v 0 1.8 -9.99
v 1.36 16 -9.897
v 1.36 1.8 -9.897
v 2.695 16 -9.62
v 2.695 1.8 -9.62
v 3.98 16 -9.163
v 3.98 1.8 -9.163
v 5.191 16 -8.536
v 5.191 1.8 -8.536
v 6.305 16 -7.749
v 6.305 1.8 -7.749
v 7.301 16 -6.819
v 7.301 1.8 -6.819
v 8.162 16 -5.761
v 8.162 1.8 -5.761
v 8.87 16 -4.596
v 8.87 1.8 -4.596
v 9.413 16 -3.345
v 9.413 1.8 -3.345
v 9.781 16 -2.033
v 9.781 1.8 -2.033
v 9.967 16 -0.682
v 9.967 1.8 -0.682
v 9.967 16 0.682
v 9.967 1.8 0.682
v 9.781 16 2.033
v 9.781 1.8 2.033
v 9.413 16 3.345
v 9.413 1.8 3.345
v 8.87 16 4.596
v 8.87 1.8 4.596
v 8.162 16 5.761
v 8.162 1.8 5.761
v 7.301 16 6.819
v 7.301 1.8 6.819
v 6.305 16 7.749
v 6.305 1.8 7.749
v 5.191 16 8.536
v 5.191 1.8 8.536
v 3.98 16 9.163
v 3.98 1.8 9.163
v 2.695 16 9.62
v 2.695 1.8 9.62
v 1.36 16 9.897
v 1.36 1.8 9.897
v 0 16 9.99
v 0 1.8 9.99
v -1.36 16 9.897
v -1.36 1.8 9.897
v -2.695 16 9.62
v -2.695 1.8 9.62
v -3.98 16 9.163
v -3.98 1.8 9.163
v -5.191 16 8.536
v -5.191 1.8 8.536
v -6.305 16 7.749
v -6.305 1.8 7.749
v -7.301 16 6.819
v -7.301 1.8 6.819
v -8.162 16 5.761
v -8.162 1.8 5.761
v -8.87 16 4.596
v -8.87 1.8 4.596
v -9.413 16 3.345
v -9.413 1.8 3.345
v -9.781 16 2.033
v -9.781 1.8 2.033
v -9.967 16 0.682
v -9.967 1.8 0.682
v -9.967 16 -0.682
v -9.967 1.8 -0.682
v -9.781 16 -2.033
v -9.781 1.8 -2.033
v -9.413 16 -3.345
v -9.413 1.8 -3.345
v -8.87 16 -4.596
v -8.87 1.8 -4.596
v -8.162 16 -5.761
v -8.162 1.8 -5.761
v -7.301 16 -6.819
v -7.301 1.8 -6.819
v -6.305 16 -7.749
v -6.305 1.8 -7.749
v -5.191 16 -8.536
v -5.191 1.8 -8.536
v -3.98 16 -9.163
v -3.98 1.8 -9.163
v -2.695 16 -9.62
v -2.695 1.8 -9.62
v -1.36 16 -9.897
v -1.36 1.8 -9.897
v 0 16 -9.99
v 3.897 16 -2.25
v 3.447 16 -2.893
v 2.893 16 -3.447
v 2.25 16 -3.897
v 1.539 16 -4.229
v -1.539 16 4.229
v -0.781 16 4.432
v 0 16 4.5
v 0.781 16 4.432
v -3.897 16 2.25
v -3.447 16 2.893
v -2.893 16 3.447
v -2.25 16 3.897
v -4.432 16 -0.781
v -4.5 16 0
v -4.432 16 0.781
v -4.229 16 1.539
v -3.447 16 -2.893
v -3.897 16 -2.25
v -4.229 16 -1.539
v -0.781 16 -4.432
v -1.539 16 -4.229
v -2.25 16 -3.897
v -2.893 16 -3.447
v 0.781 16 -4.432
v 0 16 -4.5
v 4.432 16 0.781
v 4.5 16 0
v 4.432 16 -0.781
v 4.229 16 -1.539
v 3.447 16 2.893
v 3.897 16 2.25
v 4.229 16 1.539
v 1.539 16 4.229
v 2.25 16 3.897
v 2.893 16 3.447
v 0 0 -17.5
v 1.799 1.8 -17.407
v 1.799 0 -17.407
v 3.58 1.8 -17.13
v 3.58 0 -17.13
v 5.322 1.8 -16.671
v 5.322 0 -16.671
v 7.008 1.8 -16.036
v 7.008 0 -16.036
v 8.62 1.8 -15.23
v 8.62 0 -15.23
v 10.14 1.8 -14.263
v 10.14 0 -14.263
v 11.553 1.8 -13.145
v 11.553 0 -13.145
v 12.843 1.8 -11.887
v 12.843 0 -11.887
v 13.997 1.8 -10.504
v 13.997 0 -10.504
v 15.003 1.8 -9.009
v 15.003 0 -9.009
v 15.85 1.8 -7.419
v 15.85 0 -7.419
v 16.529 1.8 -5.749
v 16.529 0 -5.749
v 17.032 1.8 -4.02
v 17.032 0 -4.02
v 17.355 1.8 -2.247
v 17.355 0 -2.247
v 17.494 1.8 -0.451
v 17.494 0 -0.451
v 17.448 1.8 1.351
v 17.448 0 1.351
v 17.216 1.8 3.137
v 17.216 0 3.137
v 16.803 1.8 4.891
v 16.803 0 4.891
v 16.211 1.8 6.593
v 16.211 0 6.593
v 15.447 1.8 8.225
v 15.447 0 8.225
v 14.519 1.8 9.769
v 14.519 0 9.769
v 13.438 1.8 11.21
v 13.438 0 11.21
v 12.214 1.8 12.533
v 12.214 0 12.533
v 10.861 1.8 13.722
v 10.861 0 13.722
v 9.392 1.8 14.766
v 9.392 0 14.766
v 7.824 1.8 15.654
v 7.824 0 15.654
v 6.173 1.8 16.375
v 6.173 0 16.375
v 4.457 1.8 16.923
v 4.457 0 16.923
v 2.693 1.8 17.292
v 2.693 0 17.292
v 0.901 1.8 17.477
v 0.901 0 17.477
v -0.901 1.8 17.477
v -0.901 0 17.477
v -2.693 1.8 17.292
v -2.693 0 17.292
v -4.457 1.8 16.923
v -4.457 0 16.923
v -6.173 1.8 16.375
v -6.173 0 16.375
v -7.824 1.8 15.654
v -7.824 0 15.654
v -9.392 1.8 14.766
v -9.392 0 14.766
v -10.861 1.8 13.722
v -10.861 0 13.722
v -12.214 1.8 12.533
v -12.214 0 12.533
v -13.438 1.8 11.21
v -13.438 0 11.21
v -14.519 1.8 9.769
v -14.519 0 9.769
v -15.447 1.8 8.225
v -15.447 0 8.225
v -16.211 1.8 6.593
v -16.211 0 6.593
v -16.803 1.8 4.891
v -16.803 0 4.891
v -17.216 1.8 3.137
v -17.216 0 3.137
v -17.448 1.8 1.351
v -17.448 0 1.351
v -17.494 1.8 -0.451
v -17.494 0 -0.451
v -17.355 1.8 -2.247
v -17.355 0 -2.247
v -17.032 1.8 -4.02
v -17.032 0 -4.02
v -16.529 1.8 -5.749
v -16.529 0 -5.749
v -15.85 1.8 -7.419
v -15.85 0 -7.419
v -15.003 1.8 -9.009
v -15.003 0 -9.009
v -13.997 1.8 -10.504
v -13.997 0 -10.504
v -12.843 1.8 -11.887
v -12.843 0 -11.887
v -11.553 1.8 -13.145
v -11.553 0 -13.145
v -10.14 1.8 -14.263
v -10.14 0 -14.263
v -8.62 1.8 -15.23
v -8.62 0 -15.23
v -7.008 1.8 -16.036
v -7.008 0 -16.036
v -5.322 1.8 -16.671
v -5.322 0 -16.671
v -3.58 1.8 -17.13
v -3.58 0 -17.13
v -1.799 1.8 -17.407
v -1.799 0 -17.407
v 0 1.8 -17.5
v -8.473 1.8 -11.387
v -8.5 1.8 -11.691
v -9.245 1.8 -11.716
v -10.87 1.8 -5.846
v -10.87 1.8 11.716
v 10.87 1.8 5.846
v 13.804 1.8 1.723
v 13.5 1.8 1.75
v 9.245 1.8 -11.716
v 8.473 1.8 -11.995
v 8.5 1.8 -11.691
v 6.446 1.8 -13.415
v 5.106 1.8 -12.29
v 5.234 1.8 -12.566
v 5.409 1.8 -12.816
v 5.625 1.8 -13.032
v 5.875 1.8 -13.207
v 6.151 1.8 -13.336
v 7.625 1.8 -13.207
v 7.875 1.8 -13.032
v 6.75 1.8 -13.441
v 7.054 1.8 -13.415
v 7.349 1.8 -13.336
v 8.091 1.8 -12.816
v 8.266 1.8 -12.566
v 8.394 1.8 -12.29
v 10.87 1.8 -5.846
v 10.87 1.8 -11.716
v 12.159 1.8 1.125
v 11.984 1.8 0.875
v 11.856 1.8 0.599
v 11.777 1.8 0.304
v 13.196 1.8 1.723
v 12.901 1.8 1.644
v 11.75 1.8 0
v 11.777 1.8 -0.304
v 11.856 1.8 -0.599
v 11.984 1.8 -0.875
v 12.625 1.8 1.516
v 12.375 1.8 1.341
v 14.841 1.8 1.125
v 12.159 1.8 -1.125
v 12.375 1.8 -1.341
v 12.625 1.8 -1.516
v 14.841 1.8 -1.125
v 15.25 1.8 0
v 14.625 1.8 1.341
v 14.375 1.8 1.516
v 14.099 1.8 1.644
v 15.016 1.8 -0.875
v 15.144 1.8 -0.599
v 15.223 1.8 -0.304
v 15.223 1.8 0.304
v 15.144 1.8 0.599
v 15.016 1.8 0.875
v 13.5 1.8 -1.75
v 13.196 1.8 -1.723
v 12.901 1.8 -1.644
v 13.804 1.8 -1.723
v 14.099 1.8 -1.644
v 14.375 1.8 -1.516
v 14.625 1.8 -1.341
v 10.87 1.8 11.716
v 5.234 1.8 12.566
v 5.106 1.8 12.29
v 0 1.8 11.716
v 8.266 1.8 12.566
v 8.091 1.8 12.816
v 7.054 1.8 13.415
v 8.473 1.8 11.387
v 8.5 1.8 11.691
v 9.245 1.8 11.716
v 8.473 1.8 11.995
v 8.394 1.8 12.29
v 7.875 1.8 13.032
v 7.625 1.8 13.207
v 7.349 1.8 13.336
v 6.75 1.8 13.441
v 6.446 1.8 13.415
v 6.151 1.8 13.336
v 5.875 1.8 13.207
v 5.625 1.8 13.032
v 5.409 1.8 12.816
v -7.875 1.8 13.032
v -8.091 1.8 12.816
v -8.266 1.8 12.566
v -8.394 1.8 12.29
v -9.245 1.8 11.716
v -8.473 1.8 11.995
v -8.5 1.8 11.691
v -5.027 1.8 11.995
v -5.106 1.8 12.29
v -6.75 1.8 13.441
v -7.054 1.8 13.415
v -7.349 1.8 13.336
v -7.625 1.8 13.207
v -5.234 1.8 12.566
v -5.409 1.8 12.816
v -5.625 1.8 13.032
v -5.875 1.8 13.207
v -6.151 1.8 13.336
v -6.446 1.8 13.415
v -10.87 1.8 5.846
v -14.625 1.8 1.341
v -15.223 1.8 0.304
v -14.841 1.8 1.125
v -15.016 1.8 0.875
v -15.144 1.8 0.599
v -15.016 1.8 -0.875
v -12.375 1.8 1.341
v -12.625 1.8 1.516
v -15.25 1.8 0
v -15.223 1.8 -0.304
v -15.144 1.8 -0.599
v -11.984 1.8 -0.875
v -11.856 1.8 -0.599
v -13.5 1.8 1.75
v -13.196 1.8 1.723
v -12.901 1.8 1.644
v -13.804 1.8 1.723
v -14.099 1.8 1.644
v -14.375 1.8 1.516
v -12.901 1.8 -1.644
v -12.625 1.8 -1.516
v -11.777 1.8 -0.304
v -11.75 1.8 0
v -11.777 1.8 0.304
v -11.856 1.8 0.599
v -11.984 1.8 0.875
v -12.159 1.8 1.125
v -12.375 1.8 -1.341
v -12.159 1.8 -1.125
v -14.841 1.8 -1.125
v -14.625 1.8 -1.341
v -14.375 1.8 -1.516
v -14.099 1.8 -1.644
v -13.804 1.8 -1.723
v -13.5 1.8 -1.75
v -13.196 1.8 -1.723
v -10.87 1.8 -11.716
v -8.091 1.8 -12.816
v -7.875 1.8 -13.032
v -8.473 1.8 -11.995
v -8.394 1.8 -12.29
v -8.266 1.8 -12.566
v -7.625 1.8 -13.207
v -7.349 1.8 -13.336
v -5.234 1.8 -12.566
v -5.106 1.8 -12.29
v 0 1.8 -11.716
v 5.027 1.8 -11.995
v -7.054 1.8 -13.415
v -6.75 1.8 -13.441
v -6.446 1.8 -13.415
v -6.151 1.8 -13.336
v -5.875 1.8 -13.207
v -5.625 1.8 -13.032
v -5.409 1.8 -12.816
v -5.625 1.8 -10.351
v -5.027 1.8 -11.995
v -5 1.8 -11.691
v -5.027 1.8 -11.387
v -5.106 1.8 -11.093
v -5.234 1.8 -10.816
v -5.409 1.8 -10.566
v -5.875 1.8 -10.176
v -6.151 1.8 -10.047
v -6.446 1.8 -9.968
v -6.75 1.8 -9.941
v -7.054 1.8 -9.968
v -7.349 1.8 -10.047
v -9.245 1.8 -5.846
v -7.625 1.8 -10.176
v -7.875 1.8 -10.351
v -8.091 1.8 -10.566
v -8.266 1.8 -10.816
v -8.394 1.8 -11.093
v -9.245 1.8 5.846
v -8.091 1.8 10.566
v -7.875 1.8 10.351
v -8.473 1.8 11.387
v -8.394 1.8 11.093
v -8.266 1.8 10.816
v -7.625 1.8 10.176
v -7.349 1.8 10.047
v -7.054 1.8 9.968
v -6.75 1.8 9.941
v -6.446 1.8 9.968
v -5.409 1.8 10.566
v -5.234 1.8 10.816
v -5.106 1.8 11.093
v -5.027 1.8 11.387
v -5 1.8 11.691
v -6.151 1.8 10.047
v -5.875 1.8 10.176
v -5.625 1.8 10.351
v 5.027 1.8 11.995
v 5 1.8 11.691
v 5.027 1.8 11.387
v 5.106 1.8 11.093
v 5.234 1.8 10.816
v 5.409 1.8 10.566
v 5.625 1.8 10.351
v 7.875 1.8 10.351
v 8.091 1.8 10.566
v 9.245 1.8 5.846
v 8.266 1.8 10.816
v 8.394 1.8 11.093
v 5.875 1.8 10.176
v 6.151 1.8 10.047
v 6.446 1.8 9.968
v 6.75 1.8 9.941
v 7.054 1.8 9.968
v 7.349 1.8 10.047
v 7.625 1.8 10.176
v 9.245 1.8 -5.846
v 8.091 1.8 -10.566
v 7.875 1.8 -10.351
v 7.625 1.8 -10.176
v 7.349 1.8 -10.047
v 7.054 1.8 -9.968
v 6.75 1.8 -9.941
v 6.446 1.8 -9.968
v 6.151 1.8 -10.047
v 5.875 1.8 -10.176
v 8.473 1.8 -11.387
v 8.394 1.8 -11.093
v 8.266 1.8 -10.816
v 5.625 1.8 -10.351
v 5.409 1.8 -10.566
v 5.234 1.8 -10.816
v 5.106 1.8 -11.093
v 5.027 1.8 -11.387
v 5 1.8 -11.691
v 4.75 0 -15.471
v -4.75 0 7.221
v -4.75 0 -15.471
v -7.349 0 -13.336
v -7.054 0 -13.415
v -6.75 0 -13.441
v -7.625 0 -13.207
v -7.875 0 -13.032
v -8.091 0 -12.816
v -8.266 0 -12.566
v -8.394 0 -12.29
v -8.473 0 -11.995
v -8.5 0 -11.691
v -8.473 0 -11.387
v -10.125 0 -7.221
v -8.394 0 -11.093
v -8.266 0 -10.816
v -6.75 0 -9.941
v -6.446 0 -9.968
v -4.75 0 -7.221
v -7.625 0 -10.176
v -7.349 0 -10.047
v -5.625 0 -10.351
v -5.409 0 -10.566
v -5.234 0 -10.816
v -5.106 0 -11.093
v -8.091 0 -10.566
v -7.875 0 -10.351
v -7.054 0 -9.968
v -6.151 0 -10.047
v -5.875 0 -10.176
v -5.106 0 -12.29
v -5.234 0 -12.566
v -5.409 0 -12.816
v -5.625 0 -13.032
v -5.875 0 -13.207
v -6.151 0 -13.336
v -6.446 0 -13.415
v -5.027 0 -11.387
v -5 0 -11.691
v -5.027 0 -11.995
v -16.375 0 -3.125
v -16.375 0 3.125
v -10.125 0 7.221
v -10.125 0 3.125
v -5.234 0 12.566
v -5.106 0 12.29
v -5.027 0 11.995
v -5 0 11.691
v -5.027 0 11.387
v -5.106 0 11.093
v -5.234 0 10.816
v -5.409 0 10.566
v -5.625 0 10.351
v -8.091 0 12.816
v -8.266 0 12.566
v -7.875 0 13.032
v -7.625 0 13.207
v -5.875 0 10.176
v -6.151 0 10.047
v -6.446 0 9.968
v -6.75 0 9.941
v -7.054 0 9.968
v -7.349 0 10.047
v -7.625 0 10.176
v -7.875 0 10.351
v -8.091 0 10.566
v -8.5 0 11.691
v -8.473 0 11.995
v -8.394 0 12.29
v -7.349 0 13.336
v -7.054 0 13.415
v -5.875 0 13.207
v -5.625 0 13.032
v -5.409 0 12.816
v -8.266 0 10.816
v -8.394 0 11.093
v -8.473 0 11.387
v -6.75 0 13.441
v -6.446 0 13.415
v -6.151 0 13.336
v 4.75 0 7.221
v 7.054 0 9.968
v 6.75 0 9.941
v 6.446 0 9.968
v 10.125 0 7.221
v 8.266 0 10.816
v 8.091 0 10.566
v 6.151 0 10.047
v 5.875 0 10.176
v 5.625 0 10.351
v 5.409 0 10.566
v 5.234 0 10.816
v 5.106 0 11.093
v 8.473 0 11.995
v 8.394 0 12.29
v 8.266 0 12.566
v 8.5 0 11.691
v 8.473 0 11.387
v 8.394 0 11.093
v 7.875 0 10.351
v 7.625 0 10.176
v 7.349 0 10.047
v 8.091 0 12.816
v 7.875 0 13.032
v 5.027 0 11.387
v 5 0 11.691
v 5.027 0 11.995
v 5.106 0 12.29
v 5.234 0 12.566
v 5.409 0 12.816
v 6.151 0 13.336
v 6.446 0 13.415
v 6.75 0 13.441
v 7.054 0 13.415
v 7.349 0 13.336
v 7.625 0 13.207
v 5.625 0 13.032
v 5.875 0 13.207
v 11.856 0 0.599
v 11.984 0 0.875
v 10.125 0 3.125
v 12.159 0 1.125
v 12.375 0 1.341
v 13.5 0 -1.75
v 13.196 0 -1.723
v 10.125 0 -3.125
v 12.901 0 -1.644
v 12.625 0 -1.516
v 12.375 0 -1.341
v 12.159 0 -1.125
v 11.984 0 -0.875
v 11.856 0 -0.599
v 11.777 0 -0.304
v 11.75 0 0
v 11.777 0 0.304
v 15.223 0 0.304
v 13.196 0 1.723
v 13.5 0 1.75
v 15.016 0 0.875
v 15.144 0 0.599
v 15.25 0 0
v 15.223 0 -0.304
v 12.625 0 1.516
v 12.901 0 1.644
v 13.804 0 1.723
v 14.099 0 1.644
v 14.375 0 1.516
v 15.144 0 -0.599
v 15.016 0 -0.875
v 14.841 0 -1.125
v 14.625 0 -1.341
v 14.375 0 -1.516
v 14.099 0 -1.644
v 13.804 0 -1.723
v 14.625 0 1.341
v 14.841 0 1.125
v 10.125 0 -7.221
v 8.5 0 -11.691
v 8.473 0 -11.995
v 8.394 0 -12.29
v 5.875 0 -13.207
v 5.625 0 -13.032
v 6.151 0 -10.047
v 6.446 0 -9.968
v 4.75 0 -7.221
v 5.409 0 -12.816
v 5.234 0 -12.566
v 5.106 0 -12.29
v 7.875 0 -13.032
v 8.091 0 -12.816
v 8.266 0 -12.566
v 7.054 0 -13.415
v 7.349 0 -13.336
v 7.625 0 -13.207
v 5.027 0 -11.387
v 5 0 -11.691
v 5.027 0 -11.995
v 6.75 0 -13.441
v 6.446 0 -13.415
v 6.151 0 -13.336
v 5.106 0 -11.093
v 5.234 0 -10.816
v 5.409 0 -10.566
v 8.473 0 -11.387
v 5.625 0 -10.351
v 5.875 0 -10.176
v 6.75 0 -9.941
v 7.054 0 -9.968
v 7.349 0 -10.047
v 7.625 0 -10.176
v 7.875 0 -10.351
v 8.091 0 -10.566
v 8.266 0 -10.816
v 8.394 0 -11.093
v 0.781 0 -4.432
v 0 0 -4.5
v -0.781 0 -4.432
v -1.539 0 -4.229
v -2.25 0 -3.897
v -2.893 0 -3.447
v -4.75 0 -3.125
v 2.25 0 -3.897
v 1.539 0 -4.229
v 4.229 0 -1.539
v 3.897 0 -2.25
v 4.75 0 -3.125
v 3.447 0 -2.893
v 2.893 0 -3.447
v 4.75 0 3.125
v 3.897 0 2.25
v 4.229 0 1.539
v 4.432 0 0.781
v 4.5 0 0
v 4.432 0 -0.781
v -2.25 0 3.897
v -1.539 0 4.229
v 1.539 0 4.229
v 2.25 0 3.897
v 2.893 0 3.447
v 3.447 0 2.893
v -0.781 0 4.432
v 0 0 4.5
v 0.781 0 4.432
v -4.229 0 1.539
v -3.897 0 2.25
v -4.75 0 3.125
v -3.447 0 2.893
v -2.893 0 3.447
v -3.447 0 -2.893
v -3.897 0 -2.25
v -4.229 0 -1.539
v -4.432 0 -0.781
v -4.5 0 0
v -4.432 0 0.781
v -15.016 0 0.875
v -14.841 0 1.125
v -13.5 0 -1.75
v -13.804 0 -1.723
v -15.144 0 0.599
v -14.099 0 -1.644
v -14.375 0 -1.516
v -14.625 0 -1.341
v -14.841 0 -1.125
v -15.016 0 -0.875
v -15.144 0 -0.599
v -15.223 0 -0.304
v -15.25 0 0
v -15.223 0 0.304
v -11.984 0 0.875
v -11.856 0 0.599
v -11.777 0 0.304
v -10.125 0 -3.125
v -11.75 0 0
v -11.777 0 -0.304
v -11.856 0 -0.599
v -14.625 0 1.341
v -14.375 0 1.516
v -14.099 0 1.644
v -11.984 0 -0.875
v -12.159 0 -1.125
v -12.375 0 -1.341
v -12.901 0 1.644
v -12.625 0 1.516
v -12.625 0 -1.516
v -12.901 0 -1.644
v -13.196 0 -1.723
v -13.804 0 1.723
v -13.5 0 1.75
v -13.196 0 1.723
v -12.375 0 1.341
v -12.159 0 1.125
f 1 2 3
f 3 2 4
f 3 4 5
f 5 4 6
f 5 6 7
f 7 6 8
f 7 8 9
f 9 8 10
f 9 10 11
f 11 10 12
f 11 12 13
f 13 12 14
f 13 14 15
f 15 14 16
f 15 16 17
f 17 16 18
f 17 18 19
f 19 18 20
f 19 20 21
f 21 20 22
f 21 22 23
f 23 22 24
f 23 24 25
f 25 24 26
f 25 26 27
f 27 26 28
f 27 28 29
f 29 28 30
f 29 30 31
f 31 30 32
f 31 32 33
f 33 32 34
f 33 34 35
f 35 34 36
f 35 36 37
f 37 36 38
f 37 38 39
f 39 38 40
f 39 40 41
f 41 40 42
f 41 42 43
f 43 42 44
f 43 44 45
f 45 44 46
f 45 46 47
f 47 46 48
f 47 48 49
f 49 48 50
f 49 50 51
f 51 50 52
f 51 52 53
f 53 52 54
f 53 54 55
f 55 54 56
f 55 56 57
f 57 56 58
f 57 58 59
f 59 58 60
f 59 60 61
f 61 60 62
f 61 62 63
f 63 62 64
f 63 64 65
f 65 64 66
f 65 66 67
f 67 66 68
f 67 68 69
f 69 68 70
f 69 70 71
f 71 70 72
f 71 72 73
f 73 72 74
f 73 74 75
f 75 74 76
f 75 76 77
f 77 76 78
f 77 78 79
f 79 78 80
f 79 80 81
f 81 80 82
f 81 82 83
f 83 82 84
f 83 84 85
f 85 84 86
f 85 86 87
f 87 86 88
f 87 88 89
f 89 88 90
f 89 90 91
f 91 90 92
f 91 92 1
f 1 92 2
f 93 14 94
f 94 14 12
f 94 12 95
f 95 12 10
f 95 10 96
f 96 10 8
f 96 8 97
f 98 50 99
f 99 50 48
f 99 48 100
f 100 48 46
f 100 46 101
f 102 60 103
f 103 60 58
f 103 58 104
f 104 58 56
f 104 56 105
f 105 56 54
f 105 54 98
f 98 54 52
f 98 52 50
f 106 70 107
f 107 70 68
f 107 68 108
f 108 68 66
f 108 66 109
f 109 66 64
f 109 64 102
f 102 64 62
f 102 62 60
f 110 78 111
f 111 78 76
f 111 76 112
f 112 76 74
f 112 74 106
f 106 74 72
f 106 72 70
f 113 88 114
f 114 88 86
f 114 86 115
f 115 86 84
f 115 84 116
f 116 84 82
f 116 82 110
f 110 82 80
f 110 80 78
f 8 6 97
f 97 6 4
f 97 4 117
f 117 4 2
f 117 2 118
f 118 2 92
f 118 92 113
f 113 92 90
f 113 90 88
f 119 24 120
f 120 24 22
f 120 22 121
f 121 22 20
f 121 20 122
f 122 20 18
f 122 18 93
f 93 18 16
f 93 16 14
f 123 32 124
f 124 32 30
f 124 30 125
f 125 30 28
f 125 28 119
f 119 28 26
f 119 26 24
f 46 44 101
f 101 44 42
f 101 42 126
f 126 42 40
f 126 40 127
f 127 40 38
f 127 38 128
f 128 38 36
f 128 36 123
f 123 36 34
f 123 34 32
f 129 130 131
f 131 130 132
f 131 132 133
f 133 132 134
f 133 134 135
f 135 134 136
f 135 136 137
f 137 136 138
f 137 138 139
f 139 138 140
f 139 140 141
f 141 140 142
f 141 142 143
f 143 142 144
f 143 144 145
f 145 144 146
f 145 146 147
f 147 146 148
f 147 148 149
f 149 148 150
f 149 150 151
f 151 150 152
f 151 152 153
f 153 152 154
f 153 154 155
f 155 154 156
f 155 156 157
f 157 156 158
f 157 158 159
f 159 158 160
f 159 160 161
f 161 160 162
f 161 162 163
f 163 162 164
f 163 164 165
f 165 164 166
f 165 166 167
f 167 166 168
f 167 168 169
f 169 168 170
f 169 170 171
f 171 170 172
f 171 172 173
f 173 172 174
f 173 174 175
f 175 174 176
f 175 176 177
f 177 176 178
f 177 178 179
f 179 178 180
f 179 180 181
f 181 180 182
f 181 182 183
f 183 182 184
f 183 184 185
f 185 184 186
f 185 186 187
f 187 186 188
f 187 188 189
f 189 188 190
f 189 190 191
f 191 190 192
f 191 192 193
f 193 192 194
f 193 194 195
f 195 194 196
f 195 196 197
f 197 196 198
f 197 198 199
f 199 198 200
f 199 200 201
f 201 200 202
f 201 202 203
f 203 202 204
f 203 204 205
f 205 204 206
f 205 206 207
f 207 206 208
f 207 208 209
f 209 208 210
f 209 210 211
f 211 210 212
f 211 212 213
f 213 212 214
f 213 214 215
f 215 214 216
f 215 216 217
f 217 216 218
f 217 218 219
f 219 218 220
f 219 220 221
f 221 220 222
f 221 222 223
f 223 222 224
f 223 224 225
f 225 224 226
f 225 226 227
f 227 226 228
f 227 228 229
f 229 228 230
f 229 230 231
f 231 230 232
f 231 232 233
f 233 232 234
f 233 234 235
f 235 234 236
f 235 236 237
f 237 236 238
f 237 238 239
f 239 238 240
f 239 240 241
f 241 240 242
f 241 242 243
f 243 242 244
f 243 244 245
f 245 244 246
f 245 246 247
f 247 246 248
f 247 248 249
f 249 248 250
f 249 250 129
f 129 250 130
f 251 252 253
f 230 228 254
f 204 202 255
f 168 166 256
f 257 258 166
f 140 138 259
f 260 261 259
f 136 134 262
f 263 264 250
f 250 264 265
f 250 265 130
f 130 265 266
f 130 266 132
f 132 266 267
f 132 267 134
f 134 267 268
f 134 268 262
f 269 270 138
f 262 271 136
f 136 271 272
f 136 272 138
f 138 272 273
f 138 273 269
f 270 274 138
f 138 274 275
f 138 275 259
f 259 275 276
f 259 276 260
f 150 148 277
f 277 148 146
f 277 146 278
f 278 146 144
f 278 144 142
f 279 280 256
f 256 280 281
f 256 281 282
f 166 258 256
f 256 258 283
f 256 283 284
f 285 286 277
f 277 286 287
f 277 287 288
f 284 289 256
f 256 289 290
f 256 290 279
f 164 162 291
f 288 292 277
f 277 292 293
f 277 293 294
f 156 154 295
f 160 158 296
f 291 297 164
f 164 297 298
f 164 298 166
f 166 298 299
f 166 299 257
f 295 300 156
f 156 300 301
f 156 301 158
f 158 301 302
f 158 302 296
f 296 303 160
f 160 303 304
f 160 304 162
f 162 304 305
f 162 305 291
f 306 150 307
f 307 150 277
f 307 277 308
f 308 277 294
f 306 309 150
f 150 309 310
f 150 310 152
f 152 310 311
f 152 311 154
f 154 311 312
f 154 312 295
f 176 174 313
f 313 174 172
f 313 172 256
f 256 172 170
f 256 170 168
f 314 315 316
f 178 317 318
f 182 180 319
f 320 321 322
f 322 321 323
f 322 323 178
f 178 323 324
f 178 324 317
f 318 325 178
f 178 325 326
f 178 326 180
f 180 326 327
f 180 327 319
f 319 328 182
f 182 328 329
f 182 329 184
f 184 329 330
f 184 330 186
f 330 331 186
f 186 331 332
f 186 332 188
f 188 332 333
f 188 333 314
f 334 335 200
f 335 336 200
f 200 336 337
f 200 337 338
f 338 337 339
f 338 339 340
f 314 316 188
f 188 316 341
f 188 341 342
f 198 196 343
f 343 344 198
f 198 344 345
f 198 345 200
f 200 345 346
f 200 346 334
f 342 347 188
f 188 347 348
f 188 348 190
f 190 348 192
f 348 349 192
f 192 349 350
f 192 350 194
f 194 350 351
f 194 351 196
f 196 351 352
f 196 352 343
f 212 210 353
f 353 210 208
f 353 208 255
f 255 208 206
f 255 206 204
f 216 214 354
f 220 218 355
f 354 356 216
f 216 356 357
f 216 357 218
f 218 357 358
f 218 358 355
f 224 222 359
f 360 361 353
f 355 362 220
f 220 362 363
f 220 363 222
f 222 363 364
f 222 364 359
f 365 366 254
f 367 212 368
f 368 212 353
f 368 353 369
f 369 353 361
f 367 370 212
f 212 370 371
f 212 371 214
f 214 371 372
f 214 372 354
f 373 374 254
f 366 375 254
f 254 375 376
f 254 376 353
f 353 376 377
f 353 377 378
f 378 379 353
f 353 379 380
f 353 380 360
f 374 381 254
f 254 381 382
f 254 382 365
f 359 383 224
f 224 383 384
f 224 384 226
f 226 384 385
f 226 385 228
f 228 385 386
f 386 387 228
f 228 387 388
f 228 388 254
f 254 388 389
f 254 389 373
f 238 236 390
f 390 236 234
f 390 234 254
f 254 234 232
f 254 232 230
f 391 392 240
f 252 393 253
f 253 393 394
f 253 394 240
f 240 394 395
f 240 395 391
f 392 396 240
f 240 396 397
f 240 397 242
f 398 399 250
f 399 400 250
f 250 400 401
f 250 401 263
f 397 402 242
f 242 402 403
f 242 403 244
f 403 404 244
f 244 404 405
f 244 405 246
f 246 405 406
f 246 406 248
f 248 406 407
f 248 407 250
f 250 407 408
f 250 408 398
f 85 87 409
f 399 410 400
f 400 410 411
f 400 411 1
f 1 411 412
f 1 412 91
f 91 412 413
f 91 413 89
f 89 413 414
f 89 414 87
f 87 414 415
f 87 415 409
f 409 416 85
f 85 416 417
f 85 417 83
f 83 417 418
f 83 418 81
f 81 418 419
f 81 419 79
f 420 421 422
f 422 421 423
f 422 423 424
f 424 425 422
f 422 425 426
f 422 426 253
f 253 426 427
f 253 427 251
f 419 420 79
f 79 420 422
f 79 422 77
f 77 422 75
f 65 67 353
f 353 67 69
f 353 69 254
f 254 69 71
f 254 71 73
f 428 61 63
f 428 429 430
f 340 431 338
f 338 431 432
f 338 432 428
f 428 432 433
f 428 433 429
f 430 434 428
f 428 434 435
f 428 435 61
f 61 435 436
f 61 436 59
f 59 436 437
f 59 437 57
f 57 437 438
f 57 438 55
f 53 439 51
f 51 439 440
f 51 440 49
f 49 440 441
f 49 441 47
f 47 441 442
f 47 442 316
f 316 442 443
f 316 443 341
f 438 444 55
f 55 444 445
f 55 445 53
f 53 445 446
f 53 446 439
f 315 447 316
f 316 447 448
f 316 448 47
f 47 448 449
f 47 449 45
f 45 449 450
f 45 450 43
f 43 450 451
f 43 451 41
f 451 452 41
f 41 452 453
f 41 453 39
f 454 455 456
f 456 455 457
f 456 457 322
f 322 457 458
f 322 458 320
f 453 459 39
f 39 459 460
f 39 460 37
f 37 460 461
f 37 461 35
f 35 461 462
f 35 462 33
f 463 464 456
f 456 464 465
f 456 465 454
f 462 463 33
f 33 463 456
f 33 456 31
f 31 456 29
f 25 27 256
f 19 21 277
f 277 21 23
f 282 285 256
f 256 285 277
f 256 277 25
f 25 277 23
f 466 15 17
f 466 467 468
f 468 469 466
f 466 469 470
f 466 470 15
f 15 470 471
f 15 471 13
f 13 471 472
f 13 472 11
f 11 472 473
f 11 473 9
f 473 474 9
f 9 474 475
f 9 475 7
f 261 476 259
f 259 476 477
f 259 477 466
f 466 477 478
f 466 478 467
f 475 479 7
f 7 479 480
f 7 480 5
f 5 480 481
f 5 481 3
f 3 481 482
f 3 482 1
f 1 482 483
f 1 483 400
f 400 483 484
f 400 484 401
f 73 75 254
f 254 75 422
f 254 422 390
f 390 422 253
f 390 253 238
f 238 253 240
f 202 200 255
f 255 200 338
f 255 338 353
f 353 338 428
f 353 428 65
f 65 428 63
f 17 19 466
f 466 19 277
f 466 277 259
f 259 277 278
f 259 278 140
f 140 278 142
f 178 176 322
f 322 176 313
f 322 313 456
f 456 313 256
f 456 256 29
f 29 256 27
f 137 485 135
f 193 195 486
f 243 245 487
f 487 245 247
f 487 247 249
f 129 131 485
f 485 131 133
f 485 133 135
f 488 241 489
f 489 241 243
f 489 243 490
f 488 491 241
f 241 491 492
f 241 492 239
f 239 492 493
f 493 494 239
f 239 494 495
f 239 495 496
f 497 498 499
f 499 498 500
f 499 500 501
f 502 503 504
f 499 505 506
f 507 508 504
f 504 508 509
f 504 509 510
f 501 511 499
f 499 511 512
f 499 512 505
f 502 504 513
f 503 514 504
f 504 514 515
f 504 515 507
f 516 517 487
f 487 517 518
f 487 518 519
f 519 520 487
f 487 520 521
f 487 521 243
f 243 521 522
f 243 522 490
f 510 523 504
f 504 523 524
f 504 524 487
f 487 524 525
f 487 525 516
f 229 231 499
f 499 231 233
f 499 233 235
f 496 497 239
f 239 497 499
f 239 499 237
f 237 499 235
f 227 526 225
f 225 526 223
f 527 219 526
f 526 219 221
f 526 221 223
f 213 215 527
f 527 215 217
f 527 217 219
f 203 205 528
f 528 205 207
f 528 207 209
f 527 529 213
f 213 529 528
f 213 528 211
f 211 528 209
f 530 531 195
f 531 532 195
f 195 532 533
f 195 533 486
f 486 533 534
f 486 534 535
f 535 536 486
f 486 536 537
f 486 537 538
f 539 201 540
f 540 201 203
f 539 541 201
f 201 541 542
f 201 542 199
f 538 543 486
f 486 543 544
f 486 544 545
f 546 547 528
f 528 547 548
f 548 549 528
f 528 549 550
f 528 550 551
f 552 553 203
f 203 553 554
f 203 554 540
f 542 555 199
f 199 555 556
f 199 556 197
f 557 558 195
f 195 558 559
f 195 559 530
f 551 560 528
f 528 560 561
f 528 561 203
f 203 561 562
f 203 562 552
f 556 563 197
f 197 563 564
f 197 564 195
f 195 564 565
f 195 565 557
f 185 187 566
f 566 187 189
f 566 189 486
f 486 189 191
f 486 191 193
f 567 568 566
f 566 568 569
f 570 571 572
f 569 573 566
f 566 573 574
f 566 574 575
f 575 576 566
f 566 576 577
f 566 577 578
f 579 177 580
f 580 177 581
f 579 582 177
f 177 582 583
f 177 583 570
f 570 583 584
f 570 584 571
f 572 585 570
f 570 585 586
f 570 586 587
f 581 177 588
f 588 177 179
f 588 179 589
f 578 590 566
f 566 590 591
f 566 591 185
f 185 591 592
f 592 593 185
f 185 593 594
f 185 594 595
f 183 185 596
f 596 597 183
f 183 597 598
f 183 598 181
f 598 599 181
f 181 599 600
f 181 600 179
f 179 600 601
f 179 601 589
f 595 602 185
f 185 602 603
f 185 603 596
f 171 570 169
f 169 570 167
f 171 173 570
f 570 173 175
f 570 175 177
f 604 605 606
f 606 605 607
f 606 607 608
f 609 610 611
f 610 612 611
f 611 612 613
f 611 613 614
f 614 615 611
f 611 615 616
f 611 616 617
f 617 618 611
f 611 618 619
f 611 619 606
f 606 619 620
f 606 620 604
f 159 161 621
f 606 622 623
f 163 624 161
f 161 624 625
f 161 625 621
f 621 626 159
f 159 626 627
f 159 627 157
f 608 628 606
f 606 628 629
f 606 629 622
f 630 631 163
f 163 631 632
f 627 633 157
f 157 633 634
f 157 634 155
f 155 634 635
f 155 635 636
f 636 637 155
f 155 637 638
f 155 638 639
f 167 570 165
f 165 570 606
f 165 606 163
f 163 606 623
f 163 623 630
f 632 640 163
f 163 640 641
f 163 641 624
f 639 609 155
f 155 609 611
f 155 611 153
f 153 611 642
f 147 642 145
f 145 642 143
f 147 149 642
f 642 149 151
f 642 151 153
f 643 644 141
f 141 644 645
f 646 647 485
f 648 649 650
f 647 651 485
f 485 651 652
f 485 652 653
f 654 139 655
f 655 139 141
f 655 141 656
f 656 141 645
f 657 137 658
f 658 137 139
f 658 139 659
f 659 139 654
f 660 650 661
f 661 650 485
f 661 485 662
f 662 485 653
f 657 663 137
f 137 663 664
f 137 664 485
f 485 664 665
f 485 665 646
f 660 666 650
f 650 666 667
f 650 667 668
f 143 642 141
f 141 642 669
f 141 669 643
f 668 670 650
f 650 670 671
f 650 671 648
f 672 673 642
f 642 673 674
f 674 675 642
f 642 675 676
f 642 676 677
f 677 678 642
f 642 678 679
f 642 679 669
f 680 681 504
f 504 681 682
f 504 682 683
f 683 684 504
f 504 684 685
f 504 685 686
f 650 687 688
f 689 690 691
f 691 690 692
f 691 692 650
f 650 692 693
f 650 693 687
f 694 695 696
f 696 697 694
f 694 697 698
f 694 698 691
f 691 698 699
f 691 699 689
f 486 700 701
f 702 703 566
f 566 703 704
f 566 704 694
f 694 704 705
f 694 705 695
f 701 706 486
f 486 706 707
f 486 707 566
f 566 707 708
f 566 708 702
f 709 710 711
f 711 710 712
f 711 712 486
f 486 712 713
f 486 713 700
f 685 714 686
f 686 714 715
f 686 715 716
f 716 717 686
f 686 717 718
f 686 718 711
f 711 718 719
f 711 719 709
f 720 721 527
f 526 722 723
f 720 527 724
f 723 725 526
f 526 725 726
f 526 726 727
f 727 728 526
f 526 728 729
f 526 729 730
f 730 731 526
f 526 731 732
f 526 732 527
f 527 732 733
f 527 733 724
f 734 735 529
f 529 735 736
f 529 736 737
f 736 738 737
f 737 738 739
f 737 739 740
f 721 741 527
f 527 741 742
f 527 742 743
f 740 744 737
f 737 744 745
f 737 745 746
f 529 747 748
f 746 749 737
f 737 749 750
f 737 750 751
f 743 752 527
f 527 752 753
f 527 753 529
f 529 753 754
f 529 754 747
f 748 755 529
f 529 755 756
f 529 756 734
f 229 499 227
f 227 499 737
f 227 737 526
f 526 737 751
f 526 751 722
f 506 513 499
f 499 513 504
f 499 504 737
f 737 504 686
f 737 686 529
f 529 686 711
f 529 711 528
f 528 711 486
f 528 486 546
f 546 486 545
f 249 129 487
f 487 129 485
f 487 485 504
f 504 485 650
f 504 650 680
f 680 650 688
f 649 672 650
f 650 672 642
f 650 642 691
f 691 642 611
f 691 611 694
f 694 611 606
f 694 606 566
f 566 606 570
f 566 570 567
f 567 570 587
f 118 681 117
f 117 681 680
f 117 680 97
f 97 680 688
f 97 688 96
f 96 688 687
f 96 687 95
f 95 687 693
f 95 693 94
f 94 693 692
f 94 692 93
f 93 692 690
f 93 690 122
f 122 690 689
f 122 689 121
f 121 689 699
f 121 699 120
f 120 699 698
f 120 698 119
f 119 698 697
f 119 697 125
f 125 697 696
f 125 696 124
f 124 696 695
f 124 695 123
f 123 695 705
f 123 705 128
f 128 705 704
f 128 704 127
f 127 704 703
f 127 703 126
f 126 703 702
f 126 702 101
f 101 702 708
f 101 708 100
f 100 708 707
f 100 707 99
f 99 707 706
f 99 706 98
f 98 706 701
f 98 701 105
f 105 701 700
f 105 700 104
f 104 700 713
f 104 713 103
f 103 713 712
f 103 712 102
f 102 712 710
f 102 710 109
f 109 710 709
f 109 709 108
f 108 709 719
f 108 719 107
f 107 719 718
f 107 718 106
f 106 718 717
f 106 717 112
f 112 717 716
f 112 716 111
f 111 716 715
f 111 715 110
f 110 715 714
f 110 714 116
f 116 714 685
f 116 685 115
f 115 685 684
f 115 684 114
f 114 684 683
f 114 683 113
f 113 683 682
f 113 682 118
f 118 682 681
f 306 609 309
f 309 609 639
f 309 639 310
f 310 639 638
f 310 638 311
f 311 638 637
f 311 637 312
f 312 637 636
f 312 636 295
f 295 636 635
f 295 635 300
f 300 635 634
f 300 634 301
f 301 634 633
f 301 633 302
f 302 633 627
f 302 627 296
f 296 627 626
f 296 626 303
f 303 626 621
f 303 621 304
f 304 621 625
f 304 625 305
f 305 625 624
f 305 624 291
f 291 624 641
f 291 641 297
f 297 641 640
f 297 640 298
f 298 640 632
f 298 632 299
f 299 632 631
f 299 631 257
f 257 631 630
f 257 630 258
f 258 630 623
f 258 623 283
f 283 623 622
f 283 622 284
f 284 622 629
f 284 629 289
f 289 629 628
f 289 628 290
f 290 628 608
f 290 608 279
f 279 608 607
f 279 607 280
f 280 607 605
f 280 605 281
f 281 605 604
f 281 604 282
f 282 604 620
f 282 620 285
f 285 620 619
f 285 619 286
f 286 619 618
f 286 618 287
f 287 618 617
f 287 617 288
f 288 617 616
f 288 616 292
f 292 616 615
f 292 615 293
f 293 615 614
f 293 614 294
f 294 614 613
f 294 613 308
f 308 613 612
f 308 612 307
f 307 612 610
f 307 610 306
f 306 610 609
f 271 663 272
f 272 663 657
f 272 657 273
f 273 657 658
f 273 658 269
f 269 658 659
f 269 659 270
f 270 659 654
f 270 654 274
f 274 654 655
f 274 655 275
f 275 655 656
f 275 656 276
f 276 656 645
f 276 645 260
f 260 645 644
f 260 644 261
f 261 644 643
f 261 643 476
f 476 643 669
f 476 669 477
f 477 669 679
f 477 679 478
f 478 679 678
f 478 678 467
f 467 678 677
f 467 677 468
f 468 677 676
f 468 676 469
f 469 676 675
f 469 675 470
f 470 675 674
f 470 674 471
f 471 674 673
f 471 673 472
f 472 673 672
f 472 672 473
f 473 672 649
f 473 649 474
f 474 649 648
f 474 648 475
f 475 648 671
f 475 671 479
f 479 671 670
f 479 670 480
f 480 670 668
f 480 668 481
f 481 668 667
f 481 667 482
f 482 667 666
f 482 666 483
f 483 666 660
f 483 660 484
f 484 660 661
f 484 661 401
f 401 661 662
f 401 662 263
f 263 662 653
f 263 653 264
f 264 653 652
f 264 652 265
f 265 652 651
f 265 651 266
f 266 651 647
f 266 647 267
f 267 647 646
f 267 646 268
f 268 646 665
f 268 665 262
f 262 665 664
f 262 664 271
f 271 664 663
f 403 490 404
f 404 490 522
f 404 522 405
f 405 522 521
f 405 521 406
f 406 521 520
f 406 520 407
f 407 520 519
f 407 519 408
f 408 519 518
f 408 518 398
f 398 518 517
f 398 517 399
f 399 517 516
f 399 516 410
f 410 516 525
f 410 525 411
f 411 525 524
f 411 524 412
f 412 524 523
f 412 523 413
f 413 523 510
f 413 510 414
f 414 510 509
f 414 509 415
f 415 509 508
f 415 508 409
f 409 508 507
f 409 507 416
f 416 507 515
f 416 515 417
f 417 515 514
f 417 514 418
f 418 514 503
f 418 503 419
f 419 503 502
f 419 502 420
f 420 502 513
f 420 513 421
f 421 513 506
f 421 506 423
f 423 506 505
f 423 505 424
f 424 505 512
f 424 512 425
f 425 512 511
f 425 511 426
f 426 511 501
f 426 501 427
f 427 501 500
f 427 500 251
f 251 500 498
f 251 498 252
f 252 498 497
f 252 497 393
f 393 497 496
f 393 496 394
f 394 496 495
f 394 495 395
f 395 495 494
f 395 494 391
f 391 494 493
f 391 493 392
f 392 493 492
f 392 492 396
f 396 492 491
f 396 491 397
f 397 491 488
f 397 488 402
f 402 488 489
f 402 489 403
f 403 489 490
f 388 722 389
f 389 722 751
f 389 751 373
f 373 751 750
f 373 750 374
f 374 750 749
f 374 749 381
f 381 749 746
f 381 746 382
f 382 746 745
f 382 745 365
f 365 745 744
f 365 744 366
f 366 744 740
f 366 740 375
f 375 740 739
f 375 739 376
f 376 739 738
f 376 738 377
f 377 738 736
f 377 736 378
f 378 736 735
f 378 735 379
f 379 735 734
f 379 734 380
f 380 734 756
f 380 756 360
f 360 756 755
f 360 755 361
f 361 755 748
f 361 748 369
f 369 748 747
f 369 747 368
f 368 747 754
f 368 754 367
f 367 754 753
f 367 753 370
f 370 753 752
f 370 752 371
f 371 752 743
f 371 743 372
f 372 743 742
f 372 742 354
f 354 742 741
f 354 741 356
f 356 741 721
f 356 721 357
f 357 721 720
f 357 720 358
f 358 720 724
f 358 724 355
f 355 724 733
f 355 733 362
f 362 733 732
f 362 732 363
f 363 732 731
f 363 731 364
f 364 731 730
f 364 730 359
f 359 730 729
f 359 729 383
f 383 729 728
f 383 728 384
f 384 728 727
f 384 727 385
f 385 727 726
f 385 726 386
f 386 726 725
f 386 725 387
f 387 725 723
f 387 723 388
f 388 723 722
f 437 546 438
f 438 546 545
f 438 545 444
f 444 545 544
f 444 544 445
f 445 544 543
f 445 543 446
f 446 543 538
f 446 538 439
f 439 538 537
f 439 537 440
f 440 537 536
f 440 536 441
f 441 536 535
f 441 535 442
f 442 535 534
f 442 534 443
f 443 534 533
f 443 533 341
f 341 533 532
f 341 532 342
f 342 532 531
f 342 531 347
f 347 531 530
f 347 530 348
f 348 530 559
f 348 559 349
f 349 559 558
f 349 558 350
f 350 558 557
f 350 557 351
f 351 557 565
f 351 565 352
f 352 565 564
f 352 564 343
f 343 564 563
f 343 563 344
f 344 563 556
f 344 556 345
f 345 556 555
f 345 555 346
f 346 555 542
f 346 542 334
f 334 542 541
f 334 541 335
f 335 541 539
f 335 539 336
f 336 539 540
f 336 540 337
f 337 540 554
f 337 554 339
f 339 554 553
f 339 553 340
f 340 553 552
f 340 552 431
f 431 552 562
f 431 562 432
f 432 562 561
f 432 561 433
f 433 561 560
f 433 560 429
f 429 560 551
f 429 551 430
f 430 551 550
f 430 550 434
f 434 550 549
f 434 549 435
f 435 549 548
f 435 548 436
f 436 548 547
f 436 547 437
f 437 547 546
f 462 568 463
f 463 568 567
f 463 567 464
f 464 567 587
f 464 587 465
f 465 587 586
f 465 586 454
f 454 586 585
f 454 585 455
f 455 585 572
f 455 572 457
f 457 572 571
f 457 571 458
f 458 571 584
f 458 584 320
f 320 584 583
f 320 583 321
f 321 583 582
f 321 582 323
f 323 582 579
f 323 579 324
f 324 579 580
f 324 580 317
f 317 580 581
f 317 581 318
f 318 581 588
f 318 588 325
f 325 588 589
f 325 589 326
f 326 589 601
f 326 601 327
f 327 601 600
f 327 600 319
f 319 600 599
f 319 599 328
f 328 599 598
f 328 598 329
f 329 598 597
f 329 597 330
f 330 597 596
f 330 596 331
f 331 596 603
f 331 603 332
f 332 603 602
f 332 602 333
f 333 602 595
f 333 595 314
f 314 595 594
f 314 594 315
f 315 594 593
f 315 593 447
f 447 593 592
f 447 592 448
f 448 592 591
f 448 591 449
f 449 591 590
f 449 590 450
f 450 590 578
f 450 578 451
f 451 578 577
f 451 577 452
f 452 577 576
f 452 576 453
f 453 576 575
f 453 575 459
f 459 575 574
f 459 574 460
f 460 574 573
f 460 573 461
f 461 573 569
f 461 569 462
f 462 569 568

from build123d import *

# Parameters (mm, degrees)
SKETCH1_R           = 9.99
BOSS_EXTRUDE1_DEPTH = 16
SKETCH3_R           = 17.5
BOSS_EXTRUDE2_DEPTH = 1.8
SKETCH4_R           = 4.5
CUT_EXTRUDE1_DEPTH  = 16
SKETCH6_R           = 1.75
CUT_EXTRUDE2_DEPTH  = 1.8
CIRPATTERN1_COUNT   = 6


with BuildPart() as part:
    # Sketch1 → Boss-Extrude1 (new body)
    with BuildSketch(Plane(origin=(0, 0, 0), x_dir=(1, 0, 0), z_dir=(0, 1, 0))):
        with Locations(Location((0, 0, 0), (0, 0, 270))):
            Circle(SKETCH1_R)
    extrude(amount=BOSS_EXTRUDE1_DEPTH)

    # Sketch3 → Boss-Extrude2 (add)
    with BuildSketch(Plane.XZ):
        with Locations(Location((0, 0, 0), (0, 0, 270))):
            Circle(SKETCH3_R)
    extrude(amount=-BOSS_EXTRUDE2_DEPTH)

    # Sketch4 → Cut-Extrude1 (cut)
    with BuildSketch(Plane.XZ):
        with Locations(Location((0, 0, 0), (0, 0, 270))):
            Circle(SKETCH4_R)
    extrude(amount=-CUT_EXTRUDE1_DEPTH, mode=Mode.SUBTRACT)

    # Sketch6 → Cut-Extrude2 (cut)
    with BuildSketch(Plane.XZ):
        with Locations(Location((13.5, 0, 0), (0, 0, 270))):
            Circle(SKETCH6_R)
    cut_extrude2 = extrude(amount=-CUT_EXTRUDE2_DEPTH, mode=Mode.SUBTRACT)

    # CirPattern1: Cut-Extrude2 ×6 about axis
    cirpattern1_axis = Axis((0, 0, 0), (0, 1, 0))
    for i in range(1, CIRPATTERN1_COUNT):
        add(cut_extrude2.rotate(cirpattern1_axis, i * 360 / CIRPATTERN1_COUNT), mode=Mode.SUBTRACT)


solid = part.part
